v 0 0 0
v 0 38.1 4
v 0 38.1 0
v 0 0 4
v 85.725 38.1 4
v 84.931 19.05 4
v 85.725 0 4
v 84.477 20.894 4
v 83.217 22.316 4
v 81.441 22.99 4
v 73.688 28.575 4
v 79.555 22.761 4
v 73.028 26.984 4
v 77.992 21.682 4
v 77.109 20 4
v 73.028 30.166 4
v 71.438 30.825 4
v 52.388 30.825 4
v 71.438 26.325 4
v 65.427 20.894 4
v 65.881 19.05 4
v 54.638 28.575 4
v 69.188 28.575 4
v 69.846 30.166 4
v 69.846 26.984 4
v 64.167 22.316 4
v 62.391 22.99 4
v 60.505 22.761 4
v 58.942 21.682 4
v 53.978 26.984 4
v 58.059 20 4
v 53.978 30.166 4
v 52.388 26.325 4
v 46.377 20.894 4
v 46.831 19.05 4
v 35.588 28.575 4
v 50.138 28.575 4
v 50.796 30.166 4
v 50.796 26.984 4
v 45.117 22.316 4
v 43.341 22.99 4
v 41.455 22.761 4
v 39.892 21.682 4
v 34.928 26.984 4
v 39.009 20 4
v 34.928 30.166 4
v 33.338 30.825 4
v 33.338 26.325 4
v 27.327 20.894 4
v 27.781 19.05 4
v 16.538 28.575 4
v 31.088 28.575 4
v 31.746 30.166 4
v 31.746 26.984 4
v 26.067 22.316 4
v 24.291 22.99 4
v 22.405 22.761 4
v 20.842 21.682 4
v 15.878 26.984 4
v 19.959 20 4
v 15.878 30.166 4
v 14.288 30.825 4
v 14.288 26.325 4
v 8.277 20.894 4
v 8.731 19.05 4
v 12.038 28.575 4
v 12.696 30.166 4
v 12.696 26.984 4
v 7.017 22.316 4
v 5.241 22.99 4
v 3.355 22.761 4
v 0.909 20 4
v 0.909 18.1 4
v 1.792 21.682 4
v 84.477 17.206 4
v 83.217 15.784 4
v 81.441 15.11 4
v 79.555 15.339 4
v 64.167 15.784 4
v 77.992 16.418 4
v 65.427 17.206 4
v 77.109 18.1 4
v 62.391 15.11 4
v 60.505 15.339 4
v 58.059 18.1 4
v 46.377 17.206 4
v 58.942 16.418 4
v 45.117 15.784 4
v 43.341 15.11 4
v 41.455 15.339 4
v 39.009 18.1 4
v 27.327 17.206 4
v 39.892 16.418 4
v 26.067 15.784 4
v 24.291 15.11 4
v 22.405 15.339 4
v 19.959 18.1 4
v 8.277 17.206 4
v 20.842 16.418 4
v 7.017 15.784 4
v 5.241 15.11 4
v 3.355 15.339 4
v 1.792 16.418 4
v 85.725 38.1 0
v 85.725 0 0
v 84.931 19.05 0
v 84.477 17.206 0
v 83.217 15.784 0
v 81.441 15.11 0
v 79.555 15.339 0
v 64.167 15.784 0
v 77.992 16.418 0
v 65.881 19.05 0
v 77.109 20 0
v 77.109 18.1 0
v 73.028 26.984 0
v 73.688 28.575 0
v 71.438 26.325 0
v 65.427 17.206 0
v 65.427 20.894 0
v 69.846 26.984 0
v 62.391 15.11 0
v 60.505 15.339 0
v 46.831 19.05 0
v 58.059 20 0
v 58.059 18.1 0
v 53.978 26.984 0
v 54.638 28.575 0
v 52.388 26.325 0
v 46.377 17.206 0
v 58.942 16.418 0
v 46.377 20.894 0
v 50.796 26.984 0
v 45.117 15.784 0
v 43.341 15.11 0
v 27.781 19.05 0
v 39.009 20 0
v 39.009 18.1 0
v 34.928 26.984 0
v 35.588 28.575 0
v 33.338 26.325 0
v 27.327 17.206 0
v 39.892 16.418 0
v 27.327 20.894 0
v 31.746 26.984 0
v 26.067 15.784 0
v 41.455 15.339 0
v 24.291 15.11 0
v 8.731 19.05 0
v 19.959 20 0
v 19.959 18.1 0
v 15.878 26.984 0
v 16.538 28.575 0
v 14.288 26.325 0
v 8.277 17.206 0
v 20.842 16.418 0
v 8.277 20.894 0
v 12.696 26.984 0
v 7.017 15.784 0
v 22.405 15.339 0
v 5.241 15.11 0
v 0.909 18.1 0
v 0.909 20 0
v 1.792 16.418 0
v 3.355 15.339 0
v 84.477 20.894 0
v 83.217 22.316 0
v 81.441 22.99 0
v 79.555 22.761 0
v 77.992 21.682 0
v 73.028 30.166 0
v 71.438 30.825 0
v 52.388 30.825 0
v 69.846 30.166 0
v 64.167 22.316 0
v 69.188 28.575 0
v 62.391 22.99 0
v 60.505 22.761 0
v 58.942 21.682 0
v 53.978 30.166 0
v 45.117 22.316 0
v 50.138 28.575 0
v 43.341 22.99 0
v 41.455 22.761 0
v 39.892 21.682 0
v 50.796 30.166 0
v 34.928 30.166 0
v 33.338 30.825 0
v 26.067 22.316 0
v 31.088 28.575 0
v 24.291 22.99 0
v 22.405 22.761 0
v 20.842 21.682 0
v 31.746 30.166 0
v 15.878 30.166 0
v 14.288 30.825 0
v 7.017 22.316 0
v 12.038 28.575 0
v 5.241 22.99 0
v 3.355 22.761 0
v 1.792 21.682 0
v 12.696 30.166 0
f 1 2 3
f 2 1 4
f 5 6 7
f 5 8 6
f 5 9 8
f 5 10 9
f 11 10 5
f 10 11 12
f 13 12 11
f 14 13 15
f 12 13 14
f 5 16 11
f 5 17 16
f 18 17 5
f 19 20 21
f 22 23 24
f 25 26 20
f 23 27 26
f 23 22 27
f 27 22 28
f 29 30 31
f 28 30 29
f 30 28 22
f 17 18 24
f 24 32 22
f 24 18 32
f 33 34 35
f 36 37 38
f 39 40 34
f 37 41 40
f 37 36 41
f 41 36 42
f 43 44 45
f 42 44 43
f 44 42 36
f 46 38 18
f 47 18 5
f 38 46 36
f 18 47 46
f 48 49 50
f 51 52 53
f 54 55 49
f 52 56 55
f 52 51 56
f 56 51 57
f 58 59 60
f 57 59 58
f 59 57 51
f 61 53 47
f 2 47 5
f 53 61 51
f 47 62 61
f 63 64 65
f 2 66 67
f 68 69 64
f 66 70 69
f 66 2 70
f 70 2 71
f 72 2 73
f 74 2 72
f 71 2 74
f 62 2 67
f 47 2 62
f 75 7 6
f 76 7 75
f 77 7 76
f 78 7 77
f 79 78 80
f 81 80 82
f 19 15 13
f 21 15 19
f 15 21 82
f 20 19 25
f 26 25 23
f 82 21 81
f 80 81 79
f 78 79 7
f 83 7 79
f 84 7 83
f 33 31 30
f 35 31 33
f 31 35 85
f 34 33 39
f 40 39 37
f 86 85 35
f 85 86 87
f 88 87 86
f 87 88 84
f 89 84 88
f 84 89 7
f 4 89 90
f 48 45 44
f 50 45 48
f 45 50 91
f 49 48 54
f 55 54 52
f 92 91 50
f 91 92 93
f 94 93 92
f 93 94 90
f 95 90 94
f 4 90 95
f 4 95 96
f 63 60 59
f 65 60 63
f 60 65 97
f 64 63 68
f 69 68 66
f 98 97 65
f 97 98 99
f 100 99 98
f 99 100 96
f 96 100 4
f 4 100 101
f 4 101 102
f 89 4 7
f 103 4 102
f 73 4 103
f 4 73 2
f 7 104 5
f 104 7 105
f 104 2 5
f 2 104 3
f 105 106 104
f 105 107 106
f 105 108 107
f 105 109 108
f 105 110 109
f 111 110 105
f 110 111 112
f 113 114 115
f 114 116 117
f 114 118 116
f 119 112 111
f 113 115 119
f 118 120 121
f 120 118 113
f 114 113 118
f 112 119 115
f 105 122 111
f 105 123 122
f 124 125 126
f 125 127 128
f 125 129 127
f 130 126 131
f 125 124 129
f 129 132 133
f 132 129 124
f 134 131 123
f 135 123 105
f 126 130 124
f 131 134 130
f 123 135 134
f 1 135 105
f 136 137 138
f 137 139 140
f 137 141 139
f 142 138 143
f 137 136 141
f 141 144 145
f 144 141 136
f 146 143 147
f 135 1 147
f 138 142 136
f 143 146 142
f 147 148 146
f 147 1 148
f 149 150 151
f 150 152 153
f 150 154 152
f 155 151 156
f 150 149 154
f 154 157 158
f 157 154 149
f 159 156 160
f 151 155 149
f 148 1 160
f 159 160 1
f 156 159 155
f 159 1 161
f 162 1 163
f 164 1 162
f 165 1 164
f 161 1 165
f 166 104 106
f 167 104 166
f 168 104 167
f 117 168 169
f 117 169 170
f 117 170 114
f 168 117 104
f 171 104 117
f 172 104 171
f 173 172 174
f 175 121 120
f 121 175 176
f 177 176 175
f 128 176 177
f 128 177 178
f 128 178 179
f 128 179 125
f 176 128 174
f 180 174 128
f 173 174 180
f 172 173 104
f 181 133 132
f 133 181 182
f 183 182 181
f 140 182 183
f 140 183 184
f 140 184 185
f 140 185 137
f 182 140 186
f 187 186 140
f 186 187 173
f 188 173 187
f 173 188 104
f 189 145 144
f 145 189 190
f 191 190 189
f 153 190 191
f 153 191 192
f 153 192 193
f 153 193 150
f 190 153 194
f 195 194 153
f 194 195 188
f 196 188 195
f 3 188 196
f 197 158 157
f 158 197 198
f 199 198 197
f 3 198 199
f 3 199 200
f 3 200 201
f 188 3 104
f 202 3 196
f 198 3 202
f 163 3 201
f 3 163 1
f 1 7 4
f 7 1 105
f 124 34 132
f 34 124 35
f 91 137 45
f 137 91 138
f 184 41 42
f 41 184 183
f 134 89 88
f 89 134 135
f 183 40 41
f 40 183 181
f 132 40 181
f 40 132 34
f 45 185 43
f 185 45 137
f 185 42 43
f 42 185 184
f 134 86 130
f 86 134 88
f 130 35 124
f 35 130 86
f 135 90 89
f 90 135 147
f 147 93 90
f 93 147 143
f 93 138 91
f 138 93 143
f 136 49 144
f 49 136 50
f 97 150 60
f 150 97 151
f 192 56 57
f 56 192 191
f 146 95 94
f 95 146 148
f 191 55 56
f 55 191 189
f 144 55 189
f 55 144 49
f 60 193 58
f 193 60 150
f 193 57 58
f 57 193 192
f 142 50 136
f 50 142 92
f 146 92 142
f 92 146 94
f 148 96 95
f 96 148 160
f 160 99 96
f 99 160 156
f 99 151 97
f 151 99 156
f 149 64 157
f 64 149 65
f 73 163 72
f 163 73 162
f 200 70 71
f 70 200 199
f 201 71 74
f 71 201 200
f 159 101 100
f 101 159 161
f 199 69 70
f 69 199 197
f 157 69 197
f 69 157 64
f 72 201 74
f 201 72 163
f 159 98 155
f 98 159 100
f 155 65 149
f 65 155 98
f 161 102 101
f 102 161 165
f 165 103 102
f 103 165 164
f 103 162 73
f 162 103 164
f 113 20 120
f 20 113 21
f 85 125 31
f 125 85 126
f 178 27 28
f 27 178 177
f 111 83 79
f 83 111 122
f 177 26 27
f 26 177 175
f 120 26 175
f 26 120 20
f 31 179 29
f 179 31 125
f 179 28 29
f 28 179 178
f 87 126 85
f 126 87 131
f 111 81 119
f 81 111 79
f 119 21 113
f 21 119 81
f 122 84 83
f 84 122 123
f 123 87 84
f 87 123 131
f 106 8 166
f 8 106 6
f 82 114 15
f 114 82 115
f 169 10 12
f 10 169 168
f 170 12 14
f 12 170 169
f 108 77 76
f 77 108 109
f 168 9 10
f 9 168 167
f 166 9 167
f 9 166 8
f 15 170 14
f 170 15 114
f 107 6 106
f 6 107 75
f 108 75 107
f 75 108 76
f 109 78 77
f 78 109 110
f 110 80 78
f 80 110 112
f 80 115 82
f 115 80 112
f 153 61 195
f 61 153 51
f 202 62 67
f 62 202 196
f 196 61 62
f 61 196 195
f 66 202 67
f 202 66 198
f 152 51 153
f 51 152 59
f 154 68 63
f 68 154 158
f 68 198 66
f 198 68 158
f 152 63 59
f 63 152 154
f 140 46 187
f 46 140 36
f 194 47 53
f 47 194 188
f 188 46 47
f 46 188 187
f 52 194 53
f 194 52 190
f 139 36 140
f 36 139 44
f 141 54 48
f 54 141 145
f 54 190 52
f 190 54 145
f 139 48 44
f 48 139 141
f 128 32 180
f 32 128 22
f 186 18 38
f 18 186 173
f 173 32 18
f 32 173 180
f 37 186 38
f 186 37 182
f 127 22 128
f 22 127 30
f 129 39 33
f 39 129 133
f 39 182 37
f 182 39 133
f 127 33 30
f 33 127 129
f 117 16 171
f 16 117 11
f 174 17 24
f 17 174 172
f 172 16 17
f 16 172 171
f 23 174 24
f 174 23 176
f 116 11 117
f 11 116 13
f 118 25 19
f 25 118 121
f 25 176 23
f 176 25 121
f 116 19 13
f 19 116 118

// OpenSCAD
// file: constants.scad
thickness = 8;
holeDiameter = 7.9375;
holeDistance = 19.05;
length = 152.4 - holeDistance;
width = holeDistance * 2;
straightPlankLength = 4.5 * holeDistance;
screwHoleDiameter = 4.5;
// main file
include <constants.scad>;

makeStraightConnector();

module makeStraightConnector() {
    difference() {
        cube([straightPlankLength, width, thickness / 2]);
        
        color("green")
        translate([straightPlankLength / 2, width / 2, -thickness / 2])
        cylinder(d=holeDiameter, h=thickness * 2);
        
        color("green")
        translate([straightPlankLength / 2 - holeDistance * 1, width / 2, -thickness / 2])
        cylinder(d=holeDiameter, h=thickness * 2);
        
        color("green")
        translate([straightPlankLength / 2 - holeDistance * 2, width / 2, -thickness / 2])
        cylinder(d=holeDiameter, h=thickness * 2);
        
        color("green")
        translate([straightPlankLength / 2 + holeDistance * 1, width / 2, -thickness / 2])
        cylinder(d=holeDiameter, h=thickness * 2);
        
        color("green")
        translate([straightPlankLength / 2 + holeDistance * 2, width / 2, -thickness / 2])
        cylinder(d=holeDiameter, h=thickness * 2);
        
        color("black")
        translate([holeDistance * 0.75, width * 0.75, -thickness])
        cylinder(d=screwHoleDiameter, h=thickness * 3);
        color("black")
        translate([holeDistance * 1.75, width * 0.75, -thickness])
        cylinder(d=screwHoleDiameter, h=thickness * 3);
        
        color("black")
        translate([holeDistance * 2.75, width * 0.75, -thickness])
        cylinder(d=screwHoleDiameter, h=thickness * 3);
        color("black")
        translate([holeDistance * 3.75, width * 0.75, -thickness])
        cylinder(d=screwHoleDiameter, h=thickness * 3);
    }
}
